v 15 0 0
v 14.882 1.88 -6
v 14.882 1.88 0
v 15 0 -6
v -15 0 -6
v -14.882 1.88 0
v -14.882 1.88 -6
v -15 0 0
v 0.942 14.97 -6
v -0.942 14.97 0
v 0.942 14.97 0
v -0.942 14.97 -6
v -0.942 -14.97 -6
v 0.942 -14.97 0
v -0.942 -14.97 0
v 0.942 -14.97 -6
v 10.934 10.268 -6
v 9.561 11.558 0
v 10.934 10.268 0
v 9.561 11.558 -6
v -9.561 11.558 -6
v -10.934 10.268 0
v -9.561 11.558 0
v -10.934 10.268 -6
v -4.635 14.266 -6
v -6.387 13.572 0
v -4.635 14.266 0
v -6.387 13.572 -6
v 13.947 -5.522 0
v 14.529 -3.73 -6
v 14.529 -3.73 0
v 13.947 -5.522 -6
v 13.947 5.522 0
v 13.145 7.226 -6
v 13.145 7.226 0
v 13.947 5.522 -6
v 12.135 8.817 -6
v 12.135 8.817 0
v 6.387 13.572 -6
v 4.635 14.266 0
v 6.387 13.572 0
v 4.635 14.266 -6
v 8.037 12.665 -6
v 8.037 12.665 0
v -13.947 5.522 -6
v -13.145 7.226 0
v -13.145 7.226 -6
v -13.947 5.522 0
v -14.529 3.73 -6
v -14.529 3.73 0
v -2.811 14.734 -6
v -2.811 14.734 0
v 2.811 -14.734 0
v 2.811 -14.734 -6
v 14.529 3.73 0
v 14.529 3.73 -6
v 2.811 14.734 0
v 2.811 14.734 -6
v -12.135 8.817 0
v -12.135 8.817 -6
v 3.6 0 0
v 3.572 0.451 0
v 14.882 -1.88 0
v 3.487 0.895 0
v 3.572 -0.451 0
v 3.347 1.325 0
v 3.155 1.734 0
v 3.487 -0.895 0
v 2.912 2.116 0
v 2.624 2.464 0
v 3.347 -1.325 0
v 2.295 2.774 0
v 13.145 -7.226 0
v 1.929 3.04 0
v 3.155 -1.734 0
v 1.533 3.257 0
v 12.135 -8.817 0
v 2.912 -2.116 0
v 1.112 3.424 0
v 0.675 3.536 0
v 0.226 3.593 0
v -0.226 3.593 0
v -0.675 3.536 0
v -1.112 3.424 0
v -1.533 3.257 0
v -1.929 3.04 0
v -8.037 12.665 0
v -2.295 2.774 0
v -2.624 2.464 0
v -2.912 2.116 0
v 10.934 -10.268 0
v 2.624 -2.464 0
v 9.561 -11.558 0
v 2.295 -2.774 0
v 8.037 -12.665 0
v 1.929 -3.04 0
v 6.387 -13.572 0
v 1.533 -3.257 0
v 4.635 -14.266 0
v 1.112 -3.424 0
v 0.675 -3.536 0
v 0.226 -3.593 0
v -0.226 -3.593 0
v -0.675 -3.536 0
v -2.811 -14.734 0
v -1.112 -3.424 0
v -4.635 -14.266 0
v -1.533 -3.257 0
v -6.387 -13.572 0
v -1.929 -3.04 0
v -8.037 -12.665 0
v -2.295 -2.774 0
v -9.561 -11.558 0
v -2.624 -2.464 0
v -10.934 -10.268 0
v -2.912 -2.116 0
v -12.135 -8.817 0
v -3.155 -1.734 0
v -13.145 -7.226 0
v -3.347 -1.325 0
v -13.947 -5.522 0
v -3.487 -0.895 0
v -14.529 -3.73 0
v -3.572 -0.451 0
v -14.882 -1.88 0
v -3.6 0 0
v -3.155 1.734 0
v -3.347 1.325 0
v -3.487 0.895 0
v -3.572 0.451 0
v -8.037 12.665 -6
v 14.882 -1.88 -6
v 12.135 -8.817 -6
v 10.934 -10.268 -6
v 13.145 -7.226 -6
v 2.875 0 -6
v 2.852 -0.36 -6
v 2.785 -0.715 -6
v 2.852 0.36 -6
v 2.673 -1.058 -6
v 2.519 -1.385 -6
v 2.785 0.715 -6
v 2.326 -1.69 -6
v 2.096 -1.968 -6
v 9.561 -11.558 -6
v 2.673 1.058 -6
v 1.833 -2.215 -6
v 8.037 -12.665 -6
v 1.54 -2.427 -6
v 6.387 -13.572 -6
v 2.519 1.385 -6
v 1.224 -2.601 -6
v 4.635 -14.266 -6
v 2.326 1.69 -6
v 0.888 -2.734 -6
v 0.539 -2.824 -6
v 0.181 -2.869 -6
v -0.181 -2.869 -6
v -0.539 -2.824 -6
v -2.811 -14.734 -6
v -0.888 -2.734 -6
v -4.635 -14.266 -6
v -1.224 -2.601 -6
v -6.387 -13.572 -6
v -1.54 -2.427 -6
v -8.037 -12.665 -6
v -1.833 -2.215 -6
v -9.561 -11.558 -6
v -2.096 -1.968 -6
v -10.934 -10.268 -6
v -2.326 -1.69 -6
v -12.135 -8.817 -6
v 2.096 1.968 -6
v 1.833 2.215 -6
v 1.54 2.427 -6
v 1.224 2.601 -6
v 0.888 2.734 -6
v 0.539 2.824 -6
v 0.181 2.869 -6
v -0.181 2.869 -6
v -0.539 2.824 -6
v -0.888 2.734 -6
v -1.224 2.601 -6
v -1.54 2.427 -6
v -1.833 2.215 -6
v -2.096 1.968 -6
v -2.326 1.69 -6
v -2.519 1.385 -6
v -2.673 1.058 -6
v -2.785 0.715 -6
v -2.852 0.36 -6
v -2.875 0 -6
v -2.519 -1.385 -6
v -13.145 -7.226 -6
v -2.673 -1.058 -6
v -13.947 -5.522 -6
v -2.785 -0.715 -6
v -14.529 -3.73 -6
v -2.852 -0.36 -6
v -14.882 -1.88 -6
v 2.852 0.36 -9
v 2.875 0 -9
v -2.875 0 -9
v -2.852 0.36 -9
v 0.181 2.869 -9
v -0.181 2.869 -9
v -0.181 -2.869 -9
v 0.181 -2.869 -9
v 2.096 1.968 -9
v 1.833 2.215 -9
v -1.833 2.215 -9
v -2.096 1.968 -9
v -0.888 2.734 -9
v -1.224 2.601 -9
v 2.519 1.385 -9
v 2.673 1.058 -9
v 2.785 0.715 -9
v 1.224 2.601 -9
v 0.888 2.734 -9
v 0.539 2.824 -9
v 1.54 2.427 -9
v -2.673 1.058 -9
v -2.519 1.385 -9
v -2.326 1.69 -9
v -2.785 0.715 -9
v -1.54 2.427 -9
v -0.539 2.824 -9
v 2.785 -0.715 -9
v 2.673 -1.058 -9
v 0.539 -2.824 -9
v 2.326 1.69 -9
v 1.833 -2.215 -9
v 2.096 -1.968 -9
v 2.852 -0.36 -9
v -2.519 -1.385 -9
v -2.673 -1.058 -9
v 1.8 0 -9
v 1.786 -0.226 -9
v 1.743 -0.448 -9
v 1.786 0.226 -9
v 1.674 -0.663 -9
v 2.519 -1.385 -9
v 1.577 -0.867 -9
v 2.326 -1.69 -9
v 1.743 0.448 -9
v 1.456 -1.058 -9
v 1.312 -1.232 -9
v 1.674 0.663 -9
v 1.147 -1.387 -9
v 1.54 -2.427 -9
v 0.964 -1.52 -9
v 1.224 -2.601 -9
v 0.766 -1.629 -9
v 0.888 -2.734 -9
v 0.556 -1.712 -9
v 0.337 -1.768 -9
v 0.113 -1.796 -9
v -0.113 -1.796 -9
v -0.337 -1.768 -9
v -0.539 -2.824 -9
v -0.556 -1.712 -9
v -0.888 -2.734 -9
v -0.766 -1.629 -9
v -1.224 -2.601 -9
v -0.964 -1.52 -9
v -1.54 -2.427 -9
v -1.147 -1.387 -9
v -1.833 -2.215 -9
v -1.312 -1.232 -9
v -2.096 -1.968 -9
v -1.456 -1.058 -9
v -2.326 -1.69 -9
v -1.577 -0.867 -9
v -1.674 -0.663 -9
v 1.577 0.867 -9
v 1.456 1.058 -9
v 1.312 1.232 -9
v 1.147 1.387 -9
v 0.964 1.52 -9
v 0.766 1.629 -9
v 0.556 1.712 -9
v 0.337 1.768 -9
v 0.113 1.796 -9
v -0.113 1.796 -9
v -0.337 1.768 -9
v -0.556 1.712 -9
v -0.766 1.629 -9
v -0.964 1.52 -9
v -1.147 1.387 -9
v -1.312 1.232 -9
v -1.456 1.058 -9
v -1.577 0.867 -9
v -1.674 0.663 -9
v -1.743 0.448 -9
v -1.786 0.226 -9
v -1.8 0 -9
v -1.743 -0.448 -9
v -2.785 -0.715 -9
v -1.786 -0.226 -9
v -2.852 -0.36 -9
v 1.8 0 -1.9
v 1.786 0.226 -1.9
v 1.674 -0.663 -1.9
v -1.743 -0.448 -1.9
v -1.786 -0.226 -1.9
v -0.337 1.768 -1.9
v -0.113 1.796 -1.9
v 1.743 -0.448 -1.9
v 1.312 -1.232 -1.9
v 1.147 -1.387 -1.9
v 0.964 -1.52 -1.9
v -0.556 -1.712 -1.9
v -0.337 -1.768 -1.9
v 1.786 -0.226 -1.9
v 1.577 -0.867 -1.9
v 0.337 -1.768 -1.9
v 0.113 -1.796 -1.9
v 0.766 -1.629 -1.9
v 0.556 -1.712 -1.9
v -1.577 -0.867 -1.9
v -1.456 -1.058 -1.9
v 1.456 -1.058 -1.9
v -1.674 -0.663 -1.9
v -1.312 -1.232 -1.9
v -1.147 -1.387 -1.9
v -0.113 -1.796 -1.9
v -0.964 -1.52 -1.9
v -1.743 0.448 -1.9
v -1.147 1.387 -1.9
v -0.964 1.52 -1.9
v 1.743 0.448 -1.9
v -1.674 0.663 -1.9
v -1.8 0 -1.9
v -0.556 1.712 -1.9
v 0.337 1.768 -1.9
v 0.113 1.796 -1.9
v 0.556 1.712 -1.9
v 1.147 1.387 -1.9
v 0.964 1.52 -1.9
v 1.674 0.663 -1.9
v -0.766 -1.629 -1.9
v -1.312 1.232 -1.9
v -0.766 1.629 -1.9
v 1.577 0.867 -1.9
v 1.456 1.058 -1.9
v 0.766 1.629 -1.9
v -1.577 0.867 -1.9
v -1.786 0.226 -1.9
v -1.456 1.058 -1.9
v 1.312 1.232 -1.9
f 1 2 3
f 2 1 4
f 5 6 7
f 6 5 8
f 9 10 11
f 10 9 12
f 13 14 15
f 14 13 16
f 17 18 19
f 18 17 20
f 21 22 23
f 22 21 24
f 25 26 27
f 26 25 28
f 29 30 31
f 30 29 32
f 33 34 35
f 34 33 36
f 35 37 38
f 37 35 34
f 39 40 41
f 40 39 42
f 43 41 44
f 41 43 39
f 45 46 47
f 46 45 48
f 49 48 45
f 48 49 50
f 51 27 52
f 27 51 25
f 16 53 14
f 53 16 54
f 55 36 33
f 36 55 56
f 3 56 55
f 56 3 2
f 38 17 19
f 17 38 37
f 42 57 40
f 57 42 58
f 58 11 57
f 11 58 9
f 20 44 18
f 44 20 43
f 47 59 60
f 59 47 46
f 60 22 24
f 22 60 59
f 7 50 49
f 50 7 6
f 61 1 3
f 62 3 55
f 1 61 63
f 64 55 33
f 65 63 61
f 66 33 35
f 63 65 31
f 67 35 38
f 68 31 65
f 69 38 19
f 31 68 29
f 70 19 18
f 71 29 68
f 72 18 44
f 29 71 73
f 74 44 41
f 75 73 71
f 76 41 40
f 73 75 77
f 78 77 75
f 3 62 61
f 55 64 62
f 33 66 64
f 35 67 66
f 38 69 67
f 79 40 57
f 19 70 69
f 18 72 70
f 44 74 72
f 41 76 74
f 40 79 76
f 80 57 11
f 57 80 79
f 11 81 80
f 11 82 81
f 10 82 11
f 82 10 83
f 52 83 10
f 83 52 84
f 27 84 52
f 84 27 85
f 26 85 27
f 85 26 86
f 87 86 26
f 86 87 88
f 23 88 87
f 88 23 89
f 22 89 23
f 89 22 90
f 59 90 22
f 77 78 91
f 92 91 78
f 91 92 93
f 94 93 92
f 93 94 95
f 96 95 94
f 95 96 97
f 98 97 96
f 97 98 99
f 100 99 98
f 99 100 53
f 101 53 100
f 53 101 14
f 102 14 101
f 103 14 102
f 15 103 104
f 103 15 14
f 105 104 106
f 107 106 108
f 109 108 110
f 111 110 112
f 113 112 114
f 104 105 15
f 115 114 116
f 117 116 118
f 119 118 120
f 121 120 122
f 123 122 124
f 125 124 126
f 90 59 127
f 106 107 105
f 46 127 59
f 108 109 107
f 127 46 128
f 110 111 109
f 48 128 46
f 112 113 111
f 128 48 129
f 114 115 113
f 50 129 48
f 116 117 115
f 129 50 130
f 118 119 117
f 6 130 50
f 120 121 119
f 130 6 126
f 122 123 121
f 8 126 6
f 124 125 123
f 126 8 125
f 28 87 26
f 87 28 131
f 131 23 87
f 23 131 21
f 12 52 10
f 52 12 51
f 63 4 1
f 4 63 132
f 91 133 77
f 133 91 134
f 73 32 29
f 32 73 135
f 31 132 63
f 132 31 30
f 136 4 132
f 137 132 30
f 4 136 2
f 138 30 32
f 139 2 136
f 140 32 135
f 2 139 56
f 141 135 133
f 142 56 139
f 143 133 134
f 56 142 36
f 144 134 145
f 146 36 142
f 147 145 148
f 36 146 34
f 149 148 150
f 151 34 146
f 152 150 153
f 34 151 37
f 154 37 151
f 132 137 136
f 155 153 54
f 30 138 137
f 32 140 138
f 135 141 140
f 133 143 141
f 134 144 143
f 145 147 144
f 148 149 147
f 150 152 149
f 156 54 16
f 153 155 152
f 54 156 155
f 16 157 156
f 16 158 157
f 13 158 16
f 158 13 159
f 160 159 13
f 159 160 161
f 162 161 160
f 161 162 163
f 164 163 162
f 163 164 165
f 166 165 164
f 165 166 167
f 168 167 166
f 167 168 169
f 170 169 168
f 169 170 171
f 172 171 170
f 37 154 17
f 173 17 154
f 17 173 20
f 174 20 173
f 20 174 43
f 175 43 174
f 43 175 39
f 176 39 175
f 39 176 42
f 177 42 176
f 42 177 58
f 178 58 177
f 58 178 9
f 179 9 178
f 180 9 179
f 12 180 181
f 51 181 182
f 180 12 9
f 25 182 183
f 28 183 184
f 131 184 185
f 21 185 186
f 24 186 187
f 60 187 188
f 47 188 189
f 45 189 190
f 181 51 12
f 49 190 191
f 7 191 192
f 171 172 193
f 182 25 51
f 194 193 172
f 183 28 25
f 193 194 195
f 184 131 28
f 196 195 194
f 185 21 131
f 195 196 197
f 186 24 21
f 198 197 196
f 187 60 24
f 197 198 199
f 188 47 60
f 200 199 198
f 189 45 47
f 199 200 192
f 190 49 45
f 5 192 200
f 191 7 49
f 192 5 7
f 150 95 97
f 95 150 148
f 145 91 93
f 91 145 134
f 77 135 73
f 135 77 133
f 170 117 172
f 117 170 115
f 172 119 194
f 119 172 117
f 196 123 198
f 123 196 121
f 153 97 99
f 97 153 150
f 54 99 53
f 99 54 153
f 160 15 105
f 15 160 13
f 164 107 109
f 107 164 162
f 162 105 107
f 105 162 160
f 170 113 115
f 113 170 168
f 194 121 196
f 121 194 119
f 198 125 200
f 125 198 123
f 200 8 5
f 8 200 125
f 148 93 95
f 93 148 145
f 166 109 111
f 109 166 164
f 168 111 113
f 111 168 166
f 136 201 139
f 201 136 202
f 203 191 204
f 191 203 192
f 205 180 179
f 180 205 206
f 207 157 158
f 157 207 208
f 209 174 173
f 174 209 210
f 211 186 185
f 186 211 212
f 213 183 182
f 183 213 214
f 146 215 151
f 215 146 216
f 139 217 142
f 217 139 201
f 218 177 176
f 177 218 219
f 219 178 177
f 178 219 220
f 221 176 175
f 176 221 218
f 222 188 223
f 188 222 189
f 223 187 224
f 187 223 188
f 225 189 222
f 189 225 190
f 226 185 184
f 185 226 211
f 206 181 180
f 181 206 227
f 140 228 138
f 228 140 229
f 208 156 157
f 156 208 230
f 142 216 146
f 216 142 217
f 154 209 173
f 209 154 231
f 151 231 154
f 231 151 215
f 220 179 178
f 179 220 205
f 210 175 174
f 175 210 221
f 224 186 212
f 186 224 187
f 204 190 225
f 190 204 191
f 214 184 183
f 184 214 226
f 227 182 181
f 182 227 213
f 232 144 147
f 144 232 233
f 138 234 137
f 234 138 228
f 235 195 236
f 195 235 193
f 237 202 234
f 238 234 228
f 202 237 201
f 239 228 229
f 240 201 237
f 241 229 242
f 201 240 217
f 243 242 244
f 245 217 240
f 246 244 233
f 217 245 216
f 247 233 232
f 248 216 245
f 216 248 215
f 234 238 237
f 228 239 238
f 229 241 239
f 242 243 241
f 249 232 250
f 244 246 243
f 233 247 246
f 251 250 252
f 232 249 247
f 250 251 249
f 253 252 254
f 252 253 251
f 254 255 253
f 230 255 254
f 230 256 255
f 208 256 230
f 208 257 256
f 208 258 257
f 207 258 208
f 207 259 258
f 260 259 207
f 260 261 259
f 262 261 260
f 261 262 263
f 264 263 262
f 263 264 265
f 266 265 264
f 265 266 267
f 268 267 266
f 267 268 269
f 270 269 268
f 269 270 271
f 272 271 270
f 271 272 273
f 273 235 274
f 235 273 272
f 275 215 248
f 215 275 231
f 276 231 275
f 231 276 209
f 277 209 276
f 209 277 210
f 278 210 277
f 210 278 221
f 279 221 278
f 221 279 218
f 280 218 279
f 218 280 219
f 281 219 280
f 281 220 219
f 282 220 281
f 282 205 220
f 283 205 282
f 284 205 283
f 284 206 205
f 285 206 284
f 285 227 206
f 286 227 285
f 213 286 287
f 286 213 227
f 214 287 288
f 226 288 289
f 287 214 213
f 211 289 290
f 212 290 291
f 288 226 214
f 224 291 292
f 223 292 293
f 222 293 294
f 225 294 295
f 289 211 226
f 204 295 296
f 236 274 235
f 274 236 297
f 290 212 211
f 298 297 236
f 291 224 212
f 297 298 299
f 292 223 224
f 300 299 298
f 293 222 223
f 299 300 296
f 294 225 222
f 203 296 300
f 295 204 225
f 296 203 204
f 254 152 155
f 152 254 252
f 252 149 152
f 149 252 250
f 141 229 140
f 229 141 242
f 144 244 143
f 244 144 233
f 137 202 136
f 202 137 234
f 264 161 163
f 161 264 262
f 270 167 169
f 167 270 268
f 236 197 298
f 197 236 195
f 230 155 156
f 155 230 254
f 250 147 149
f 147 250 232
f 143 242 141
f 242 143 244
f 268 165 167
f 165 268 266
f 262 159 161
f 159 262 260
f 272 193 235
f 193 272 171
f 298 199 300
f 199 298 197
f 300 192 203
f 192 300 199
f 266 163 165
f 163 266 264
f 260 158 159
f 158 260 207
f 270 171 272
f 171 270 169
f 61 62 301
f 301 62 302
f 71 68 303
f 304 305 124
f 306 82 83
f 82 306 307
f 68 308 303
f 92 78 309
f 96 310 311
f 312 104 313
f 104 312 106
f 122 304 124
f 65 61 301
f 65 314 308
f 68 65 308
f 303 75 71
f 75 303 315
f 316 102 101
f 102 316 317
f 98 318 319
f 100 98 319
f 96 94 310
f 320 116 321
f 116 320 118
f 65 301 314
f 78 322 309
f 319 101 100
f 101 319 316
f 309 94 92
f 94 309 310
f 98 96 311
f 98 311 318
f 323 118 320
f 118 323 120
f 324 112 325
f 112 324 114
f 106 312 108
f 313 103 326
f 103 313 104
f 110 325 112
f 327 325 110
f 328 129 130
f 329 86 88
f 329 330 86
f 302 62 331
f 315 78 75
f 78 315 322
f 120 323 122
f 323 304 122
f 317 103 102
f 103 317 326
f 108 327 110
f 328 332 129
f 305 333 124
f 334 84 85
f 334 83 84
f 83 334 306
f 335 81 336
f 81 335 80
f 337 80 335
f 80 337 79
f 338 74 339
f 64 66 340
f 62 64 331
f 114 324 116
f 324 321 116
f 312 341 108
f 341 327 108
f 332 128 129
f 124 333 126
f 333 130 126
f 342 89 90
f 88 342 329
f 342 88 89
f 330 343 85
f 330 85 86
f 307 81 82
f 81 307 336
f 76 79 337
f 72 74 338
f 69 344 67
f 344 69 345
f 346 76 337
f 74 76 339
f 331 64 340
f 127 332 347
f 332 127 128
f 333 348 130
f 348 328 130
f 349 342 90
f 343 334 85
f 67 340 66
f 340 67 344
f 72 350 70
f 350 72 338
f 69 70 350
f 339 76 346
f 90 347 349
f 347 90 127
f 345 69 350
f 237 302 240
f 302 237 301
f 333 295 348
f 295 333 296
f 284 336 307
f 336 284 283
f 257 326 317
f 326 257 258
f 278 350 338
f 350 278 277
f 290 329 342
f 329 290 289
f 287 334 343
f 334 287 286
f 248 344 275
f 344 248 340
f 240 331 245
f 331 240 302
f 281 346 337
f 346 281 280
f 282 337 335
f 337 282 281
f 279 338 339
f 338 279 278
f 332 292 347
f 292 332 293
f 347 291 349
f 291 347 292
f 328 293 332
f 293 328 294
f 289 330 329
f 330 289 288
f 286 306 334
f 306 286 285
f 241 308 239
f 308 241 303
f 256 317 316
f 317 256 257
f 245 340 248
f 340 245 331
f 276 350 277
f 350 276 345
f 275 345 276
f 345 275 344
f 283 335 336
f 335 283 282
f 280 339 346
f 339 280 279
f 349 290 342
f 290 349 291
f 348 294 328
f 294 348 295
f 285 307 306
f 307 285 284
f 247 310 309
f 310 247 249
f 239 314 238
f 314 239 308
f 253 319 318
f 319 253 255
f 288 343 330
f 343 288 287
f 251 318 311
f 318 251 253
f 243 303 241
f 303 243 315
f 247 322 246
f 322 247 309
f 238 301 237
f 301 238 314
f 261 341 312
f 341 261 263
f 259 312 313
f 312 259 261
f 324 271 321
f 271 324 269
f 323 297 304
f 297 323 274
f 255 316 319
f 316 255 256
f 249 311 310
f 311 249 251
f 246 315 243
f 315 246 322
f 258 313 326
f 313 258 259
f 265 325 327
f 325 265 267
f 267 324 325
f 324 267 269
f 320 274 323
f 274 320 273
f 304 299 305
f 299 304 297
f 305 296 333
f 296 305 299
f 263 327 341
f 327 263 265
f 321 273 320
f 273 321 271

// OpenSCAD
$fn = 50;

difference() {
	union() {
		translate(v = [0, 0, -6.0]) {
			cylinder(h = 6, r = 15.0);
		}
		#translate(v = [0, 0, -9.0]) {
			cylinder(h = 9, r = 2.875);
		}
	}
	union() {
		translate(v = [0, 0, 0]) {
			rotate(a = [0, 0, 0]) {
				difference() {
					union() {
						translate(v = [0, 0, -9.0]) {
							cylinder(h = 9, r = 1.5);
						}
						translate(v = [0, 0, -1.9]) {
							cylinder(h = 1.9, r1 = 1.8, r2 = 3.6);
						}
						translate(v = [0, 0, -9.0]) {
							cylinder(h = 9, r = 1.8);
						}
						translate(v = [0, 0, -9.0]) {
							cylinder(h = 9, r = 1.5);
						}
					}
					union();
				}
			}
		}
	}
}
